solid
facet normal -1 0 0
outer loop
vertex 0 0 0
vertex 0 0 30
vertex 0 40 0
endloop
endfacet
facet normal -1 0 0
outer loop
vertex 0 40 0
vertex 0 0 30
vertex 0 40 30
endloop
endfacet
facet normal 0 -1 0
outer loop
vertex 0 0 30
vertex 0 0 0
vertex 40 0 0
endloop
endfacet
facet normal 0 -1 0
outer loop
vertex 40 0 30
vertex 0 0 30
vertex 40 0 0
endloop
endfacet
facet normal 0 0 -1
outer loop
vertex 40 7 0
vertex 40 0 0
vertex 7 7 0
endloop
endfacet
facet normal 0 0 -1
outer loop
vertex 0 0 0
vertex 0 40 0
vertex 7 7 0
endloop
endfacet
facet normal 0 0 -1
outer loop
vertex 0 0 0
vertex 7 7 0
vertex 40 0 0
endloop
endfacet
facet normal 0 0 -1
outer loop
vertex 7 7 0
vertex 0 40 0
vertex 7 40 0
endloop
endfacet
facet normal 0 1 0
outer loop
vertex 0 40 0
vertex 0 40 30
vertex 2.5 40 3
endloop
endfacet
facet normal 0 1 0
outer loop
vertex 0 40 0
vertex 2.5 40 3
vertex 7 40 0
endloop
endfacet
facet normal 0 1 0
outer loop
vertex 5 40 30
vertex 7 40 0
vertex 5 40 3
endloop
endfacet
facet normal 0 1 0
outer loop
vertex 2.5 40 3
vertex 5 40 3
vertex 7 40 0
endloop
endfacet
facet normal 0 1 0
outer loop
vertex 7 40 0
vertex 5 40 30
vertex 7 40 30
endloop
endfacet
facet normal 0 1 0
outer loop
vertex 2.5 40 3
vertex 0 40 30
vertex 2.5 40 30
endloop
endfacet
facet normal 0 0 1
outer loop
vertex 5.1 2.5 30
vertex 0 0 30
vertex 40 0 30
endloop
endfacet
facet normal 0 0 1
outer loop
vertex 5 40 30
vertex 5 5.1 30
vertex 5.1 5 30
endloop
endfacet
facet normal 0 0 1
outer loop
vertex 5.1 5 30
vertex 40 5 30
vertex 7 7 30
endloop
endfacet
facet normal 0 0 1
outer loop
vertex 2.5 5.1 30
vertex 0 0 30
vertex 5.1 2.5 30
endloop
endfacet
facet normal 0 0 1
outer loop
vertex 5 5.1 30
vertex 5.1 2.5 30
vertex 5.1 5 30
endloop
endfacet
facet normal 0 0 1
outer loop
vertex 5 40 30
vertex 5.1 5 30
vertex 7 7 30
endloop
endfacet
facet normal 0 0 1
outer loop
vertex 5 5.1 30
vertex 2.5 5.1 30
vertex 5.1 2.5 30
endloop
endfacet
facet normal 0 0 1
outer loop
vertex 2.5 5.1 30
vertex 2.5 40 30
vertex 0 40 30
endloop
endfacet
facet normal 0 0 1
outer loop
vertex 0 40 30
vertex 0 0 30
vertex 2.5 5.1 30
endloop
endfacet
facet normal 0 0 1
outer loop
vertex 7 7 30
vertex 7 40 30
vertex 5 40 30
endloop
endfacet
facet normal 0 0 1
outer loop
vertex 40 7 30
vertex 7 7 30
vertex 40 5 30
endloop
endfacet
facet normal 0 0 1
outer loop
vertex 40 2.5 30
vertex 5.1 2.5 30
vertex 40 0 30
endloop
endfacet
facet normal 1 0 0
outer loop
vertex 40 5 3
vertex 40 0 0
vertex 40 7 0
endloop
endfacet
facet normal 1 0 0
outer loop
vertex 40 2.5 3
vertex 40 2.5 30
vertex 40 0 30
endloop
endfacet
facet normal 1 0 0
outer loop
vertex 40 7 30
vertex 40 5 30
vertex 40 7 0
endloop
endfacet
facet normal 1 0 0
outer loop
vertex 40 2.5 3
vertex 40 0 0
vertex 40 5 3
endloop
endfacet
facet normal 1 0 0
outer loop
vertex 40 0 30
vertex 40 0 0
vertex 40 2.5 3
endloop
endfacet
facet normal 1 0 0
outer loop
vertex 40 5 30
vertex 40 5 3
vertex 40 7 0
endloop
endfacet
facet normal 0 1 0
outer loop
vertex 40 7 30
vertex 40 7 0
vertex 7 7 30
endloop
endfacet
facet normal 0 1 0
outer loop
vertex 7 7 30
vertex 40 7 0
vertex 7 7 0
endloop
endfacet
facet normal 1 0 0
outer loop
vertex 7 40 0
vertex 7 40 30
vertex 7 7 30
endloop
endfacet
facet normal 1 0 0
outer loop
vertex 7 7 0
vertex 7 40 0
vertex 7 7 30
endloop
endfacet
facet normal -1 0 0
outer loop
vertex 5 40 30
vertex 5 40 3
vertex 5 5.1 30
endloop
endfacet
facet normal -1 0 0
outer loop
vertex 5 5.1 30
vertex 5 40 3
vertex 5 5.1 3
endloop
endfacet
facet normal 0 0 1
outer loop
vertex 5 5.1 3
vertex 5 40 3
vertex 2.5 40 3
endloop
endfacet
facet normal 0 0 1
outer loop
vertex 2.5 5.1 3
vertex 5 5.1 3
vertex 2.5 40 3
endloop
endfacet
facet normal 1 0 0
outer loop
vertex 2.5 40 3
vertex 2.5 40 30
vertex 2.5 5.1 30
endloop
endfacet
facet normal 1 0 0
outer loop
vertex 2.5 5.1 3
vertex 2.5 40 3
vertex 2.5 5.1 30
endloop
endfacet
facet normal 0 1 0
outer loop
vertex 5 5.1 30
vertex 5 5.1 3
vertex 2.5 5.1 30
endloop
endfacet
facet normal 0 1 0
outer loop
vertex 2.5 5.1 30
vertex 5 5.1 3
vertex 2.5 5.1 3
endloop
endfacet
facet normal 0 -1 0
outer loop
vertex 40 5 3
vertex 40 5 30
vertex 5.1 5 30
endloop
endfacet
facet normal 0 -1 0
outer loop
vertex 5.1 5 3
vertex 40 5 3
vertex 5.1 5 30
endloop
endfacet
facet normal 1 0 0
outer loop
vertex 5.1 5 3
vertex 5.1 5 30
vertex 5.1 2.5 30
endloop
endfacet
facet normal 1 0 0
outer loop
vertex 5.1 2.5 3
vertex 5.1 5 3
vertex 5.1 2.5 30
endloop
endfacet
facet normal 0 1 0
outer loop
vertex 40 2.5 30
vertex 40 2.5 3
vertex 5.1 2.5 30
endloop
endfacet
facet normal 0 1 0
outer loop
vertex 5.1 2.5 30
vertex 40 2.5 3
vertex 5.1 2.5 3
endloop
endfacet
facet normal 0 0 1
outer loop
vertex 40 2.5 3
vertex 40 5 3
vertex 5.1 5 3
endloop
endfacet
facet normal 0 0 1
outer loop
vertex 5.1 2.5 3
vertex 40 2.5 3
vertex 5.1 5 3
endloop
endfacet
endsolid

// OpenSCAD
module bracket()
{
	difference()
	{
		union()
		{
			cube([40,40,30]);

		}
		union()
		{
			translate([7,7,-1]) cube([40,40,42]);
			translate([2.5,5.1,3]) cube ([2.5,40,40]);
			translate([5.1,2.5,3]) cube ([40,2.5,40]);
		}
	}
}

bracket();
